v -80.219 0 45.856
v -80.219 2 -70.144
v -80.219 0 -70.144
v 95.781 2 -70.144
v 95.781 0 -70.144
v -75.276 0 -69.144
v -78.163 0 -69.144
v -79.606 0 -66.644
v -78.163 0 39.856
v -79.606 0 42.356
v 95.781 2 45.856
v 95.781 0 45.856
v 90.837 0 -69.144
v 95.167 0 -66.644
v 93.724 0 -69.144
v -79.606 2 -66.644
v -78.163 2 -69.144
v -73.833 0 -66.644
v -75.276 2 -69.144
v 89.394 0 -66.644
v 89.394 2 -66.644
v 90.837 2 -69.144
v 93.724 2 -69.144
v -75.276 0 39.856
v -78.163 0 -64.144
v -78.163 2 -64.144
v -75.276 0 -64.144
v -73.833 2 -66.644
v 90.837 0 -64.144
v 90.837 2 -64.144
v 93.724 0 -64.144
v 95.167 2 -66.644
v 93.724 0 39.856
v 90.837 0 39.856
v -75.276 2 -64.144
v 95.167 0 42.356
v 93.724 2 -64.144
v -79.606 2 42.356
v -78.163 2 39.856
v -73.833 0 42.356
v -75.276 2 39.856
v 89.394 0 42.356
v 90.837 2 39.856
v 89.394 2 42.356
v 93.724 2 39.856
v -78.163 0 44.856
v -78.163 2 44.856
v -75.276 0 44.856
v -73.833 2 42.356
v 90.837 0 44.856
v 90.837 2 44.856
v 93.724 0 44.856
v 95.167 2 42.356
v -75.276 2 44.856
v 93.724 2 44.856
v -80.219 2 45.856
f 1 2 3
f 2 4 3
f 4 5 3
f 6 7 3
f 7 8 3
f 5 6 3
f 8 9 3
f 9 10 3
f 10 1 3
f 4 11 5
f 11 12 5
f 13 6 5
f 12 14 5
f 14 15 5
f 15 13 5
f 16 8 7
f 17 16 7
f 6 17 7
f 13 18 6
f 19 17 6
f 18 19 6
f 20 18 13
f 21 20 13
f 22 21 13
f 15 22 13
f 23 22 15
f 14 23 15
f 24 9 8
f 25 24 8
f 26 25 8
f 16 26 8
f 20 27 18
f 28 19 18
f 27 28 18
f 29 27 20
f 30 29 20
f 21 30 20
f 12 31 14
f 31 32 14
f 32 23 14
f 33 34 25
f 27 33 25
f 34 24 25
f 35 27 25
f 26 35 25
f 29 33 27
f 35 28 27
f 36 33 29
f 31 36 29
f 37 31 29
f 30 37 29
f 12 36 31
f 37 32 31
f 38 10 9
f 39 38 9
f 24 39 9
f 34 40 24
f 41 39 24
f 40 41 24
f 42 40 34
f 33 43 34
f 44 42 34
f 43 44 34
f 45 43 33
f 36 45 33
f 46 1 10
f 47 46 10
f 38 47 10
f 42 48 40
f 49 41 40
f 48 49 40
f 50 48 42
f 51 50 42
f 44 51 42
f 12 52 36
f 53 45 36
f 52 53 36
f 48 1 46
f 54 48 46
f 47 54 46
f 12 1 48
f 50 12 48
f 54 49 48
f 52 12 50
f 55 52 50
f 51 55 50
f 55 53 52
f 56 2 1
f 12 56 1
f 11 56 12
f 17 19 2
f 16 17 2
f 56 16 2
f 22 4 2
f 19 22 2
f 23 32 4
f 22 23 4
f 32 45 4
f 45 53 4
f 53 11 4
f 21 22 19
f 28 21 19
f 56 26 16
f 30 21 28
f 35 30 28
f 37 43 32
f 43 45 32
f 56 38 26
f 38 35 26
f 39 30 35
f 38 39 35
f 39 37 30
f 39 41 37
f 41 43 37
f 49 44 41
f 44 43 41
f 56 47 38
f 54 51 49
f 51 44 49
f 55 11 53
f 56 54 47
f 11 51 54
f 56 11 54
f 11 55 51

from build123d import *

# Parameters (mm, degrees)
SKETCH1_W           = 176
SKETCH1_H           = 116
BOSS_EXTRUDE1_DEPTH = 2
CUT_EXTRUDE2_DEPTH  = 2


with BuildPart() as part:
    # Sketch1 → Boss-Extrude1 (new body)
    with BuildSketch(Plane(origin=(0, 0, 0), x_dir=(1, 0, 0), z_dir=(0, 1, 0))):
        with Locations((7.780713342, 12.143989432)):
            Rectangle(SKETCH1_W, SKETCH1_H)
    extrude(amount=BOSS_EXTRUDE1_DEPTH)

    # Sketch3 → Cut-Extrude2 (cut)
    with BuildSketch(Plane(origin=(0, 2, 0), x_dir=(1, 0, 0), z_dir=(0, 1, 0))):
        Polygon((-75.275910985, 64.143989432), (-73.832535312, 66.643989432), (-75.275910985, 69.143989432), (-78.162662331, 69.143989432), (-79.606038004, 66.643989432), (-78.162662331, 64.143989432), align=None)
        Polygon((93.724089015, 64.143989432), (90.837337669, 64.143989432), (89.393961996, 66.643989432), (90.837337669, 69.143989432), (93.724089015, 69.143989432), (95.167464688, 66.643989432), align=None)
        Polygon((90.837337669, -39.856010568), (89.393961996, -42.356010568), (90.837337669, -44.856010568), (93.724089015, -44.856010568), (95.167464688, -42.356010568), (93.724089015, -39.856010568), align=None)
        Polygon((-78.162662331, -39.856010568), (-75.275910985, -39.856010568), (-73.832535312, -42.356010568), (-75.275910985, -44.856010568), (-78.162662331, -44.856010568), (-79.606038004, -42.356010568), align=None)
    extrude(amount=-CUT_EXTRUDE2_DEPTH, mode=Mode.SUBTRACT)


solid = part.part
